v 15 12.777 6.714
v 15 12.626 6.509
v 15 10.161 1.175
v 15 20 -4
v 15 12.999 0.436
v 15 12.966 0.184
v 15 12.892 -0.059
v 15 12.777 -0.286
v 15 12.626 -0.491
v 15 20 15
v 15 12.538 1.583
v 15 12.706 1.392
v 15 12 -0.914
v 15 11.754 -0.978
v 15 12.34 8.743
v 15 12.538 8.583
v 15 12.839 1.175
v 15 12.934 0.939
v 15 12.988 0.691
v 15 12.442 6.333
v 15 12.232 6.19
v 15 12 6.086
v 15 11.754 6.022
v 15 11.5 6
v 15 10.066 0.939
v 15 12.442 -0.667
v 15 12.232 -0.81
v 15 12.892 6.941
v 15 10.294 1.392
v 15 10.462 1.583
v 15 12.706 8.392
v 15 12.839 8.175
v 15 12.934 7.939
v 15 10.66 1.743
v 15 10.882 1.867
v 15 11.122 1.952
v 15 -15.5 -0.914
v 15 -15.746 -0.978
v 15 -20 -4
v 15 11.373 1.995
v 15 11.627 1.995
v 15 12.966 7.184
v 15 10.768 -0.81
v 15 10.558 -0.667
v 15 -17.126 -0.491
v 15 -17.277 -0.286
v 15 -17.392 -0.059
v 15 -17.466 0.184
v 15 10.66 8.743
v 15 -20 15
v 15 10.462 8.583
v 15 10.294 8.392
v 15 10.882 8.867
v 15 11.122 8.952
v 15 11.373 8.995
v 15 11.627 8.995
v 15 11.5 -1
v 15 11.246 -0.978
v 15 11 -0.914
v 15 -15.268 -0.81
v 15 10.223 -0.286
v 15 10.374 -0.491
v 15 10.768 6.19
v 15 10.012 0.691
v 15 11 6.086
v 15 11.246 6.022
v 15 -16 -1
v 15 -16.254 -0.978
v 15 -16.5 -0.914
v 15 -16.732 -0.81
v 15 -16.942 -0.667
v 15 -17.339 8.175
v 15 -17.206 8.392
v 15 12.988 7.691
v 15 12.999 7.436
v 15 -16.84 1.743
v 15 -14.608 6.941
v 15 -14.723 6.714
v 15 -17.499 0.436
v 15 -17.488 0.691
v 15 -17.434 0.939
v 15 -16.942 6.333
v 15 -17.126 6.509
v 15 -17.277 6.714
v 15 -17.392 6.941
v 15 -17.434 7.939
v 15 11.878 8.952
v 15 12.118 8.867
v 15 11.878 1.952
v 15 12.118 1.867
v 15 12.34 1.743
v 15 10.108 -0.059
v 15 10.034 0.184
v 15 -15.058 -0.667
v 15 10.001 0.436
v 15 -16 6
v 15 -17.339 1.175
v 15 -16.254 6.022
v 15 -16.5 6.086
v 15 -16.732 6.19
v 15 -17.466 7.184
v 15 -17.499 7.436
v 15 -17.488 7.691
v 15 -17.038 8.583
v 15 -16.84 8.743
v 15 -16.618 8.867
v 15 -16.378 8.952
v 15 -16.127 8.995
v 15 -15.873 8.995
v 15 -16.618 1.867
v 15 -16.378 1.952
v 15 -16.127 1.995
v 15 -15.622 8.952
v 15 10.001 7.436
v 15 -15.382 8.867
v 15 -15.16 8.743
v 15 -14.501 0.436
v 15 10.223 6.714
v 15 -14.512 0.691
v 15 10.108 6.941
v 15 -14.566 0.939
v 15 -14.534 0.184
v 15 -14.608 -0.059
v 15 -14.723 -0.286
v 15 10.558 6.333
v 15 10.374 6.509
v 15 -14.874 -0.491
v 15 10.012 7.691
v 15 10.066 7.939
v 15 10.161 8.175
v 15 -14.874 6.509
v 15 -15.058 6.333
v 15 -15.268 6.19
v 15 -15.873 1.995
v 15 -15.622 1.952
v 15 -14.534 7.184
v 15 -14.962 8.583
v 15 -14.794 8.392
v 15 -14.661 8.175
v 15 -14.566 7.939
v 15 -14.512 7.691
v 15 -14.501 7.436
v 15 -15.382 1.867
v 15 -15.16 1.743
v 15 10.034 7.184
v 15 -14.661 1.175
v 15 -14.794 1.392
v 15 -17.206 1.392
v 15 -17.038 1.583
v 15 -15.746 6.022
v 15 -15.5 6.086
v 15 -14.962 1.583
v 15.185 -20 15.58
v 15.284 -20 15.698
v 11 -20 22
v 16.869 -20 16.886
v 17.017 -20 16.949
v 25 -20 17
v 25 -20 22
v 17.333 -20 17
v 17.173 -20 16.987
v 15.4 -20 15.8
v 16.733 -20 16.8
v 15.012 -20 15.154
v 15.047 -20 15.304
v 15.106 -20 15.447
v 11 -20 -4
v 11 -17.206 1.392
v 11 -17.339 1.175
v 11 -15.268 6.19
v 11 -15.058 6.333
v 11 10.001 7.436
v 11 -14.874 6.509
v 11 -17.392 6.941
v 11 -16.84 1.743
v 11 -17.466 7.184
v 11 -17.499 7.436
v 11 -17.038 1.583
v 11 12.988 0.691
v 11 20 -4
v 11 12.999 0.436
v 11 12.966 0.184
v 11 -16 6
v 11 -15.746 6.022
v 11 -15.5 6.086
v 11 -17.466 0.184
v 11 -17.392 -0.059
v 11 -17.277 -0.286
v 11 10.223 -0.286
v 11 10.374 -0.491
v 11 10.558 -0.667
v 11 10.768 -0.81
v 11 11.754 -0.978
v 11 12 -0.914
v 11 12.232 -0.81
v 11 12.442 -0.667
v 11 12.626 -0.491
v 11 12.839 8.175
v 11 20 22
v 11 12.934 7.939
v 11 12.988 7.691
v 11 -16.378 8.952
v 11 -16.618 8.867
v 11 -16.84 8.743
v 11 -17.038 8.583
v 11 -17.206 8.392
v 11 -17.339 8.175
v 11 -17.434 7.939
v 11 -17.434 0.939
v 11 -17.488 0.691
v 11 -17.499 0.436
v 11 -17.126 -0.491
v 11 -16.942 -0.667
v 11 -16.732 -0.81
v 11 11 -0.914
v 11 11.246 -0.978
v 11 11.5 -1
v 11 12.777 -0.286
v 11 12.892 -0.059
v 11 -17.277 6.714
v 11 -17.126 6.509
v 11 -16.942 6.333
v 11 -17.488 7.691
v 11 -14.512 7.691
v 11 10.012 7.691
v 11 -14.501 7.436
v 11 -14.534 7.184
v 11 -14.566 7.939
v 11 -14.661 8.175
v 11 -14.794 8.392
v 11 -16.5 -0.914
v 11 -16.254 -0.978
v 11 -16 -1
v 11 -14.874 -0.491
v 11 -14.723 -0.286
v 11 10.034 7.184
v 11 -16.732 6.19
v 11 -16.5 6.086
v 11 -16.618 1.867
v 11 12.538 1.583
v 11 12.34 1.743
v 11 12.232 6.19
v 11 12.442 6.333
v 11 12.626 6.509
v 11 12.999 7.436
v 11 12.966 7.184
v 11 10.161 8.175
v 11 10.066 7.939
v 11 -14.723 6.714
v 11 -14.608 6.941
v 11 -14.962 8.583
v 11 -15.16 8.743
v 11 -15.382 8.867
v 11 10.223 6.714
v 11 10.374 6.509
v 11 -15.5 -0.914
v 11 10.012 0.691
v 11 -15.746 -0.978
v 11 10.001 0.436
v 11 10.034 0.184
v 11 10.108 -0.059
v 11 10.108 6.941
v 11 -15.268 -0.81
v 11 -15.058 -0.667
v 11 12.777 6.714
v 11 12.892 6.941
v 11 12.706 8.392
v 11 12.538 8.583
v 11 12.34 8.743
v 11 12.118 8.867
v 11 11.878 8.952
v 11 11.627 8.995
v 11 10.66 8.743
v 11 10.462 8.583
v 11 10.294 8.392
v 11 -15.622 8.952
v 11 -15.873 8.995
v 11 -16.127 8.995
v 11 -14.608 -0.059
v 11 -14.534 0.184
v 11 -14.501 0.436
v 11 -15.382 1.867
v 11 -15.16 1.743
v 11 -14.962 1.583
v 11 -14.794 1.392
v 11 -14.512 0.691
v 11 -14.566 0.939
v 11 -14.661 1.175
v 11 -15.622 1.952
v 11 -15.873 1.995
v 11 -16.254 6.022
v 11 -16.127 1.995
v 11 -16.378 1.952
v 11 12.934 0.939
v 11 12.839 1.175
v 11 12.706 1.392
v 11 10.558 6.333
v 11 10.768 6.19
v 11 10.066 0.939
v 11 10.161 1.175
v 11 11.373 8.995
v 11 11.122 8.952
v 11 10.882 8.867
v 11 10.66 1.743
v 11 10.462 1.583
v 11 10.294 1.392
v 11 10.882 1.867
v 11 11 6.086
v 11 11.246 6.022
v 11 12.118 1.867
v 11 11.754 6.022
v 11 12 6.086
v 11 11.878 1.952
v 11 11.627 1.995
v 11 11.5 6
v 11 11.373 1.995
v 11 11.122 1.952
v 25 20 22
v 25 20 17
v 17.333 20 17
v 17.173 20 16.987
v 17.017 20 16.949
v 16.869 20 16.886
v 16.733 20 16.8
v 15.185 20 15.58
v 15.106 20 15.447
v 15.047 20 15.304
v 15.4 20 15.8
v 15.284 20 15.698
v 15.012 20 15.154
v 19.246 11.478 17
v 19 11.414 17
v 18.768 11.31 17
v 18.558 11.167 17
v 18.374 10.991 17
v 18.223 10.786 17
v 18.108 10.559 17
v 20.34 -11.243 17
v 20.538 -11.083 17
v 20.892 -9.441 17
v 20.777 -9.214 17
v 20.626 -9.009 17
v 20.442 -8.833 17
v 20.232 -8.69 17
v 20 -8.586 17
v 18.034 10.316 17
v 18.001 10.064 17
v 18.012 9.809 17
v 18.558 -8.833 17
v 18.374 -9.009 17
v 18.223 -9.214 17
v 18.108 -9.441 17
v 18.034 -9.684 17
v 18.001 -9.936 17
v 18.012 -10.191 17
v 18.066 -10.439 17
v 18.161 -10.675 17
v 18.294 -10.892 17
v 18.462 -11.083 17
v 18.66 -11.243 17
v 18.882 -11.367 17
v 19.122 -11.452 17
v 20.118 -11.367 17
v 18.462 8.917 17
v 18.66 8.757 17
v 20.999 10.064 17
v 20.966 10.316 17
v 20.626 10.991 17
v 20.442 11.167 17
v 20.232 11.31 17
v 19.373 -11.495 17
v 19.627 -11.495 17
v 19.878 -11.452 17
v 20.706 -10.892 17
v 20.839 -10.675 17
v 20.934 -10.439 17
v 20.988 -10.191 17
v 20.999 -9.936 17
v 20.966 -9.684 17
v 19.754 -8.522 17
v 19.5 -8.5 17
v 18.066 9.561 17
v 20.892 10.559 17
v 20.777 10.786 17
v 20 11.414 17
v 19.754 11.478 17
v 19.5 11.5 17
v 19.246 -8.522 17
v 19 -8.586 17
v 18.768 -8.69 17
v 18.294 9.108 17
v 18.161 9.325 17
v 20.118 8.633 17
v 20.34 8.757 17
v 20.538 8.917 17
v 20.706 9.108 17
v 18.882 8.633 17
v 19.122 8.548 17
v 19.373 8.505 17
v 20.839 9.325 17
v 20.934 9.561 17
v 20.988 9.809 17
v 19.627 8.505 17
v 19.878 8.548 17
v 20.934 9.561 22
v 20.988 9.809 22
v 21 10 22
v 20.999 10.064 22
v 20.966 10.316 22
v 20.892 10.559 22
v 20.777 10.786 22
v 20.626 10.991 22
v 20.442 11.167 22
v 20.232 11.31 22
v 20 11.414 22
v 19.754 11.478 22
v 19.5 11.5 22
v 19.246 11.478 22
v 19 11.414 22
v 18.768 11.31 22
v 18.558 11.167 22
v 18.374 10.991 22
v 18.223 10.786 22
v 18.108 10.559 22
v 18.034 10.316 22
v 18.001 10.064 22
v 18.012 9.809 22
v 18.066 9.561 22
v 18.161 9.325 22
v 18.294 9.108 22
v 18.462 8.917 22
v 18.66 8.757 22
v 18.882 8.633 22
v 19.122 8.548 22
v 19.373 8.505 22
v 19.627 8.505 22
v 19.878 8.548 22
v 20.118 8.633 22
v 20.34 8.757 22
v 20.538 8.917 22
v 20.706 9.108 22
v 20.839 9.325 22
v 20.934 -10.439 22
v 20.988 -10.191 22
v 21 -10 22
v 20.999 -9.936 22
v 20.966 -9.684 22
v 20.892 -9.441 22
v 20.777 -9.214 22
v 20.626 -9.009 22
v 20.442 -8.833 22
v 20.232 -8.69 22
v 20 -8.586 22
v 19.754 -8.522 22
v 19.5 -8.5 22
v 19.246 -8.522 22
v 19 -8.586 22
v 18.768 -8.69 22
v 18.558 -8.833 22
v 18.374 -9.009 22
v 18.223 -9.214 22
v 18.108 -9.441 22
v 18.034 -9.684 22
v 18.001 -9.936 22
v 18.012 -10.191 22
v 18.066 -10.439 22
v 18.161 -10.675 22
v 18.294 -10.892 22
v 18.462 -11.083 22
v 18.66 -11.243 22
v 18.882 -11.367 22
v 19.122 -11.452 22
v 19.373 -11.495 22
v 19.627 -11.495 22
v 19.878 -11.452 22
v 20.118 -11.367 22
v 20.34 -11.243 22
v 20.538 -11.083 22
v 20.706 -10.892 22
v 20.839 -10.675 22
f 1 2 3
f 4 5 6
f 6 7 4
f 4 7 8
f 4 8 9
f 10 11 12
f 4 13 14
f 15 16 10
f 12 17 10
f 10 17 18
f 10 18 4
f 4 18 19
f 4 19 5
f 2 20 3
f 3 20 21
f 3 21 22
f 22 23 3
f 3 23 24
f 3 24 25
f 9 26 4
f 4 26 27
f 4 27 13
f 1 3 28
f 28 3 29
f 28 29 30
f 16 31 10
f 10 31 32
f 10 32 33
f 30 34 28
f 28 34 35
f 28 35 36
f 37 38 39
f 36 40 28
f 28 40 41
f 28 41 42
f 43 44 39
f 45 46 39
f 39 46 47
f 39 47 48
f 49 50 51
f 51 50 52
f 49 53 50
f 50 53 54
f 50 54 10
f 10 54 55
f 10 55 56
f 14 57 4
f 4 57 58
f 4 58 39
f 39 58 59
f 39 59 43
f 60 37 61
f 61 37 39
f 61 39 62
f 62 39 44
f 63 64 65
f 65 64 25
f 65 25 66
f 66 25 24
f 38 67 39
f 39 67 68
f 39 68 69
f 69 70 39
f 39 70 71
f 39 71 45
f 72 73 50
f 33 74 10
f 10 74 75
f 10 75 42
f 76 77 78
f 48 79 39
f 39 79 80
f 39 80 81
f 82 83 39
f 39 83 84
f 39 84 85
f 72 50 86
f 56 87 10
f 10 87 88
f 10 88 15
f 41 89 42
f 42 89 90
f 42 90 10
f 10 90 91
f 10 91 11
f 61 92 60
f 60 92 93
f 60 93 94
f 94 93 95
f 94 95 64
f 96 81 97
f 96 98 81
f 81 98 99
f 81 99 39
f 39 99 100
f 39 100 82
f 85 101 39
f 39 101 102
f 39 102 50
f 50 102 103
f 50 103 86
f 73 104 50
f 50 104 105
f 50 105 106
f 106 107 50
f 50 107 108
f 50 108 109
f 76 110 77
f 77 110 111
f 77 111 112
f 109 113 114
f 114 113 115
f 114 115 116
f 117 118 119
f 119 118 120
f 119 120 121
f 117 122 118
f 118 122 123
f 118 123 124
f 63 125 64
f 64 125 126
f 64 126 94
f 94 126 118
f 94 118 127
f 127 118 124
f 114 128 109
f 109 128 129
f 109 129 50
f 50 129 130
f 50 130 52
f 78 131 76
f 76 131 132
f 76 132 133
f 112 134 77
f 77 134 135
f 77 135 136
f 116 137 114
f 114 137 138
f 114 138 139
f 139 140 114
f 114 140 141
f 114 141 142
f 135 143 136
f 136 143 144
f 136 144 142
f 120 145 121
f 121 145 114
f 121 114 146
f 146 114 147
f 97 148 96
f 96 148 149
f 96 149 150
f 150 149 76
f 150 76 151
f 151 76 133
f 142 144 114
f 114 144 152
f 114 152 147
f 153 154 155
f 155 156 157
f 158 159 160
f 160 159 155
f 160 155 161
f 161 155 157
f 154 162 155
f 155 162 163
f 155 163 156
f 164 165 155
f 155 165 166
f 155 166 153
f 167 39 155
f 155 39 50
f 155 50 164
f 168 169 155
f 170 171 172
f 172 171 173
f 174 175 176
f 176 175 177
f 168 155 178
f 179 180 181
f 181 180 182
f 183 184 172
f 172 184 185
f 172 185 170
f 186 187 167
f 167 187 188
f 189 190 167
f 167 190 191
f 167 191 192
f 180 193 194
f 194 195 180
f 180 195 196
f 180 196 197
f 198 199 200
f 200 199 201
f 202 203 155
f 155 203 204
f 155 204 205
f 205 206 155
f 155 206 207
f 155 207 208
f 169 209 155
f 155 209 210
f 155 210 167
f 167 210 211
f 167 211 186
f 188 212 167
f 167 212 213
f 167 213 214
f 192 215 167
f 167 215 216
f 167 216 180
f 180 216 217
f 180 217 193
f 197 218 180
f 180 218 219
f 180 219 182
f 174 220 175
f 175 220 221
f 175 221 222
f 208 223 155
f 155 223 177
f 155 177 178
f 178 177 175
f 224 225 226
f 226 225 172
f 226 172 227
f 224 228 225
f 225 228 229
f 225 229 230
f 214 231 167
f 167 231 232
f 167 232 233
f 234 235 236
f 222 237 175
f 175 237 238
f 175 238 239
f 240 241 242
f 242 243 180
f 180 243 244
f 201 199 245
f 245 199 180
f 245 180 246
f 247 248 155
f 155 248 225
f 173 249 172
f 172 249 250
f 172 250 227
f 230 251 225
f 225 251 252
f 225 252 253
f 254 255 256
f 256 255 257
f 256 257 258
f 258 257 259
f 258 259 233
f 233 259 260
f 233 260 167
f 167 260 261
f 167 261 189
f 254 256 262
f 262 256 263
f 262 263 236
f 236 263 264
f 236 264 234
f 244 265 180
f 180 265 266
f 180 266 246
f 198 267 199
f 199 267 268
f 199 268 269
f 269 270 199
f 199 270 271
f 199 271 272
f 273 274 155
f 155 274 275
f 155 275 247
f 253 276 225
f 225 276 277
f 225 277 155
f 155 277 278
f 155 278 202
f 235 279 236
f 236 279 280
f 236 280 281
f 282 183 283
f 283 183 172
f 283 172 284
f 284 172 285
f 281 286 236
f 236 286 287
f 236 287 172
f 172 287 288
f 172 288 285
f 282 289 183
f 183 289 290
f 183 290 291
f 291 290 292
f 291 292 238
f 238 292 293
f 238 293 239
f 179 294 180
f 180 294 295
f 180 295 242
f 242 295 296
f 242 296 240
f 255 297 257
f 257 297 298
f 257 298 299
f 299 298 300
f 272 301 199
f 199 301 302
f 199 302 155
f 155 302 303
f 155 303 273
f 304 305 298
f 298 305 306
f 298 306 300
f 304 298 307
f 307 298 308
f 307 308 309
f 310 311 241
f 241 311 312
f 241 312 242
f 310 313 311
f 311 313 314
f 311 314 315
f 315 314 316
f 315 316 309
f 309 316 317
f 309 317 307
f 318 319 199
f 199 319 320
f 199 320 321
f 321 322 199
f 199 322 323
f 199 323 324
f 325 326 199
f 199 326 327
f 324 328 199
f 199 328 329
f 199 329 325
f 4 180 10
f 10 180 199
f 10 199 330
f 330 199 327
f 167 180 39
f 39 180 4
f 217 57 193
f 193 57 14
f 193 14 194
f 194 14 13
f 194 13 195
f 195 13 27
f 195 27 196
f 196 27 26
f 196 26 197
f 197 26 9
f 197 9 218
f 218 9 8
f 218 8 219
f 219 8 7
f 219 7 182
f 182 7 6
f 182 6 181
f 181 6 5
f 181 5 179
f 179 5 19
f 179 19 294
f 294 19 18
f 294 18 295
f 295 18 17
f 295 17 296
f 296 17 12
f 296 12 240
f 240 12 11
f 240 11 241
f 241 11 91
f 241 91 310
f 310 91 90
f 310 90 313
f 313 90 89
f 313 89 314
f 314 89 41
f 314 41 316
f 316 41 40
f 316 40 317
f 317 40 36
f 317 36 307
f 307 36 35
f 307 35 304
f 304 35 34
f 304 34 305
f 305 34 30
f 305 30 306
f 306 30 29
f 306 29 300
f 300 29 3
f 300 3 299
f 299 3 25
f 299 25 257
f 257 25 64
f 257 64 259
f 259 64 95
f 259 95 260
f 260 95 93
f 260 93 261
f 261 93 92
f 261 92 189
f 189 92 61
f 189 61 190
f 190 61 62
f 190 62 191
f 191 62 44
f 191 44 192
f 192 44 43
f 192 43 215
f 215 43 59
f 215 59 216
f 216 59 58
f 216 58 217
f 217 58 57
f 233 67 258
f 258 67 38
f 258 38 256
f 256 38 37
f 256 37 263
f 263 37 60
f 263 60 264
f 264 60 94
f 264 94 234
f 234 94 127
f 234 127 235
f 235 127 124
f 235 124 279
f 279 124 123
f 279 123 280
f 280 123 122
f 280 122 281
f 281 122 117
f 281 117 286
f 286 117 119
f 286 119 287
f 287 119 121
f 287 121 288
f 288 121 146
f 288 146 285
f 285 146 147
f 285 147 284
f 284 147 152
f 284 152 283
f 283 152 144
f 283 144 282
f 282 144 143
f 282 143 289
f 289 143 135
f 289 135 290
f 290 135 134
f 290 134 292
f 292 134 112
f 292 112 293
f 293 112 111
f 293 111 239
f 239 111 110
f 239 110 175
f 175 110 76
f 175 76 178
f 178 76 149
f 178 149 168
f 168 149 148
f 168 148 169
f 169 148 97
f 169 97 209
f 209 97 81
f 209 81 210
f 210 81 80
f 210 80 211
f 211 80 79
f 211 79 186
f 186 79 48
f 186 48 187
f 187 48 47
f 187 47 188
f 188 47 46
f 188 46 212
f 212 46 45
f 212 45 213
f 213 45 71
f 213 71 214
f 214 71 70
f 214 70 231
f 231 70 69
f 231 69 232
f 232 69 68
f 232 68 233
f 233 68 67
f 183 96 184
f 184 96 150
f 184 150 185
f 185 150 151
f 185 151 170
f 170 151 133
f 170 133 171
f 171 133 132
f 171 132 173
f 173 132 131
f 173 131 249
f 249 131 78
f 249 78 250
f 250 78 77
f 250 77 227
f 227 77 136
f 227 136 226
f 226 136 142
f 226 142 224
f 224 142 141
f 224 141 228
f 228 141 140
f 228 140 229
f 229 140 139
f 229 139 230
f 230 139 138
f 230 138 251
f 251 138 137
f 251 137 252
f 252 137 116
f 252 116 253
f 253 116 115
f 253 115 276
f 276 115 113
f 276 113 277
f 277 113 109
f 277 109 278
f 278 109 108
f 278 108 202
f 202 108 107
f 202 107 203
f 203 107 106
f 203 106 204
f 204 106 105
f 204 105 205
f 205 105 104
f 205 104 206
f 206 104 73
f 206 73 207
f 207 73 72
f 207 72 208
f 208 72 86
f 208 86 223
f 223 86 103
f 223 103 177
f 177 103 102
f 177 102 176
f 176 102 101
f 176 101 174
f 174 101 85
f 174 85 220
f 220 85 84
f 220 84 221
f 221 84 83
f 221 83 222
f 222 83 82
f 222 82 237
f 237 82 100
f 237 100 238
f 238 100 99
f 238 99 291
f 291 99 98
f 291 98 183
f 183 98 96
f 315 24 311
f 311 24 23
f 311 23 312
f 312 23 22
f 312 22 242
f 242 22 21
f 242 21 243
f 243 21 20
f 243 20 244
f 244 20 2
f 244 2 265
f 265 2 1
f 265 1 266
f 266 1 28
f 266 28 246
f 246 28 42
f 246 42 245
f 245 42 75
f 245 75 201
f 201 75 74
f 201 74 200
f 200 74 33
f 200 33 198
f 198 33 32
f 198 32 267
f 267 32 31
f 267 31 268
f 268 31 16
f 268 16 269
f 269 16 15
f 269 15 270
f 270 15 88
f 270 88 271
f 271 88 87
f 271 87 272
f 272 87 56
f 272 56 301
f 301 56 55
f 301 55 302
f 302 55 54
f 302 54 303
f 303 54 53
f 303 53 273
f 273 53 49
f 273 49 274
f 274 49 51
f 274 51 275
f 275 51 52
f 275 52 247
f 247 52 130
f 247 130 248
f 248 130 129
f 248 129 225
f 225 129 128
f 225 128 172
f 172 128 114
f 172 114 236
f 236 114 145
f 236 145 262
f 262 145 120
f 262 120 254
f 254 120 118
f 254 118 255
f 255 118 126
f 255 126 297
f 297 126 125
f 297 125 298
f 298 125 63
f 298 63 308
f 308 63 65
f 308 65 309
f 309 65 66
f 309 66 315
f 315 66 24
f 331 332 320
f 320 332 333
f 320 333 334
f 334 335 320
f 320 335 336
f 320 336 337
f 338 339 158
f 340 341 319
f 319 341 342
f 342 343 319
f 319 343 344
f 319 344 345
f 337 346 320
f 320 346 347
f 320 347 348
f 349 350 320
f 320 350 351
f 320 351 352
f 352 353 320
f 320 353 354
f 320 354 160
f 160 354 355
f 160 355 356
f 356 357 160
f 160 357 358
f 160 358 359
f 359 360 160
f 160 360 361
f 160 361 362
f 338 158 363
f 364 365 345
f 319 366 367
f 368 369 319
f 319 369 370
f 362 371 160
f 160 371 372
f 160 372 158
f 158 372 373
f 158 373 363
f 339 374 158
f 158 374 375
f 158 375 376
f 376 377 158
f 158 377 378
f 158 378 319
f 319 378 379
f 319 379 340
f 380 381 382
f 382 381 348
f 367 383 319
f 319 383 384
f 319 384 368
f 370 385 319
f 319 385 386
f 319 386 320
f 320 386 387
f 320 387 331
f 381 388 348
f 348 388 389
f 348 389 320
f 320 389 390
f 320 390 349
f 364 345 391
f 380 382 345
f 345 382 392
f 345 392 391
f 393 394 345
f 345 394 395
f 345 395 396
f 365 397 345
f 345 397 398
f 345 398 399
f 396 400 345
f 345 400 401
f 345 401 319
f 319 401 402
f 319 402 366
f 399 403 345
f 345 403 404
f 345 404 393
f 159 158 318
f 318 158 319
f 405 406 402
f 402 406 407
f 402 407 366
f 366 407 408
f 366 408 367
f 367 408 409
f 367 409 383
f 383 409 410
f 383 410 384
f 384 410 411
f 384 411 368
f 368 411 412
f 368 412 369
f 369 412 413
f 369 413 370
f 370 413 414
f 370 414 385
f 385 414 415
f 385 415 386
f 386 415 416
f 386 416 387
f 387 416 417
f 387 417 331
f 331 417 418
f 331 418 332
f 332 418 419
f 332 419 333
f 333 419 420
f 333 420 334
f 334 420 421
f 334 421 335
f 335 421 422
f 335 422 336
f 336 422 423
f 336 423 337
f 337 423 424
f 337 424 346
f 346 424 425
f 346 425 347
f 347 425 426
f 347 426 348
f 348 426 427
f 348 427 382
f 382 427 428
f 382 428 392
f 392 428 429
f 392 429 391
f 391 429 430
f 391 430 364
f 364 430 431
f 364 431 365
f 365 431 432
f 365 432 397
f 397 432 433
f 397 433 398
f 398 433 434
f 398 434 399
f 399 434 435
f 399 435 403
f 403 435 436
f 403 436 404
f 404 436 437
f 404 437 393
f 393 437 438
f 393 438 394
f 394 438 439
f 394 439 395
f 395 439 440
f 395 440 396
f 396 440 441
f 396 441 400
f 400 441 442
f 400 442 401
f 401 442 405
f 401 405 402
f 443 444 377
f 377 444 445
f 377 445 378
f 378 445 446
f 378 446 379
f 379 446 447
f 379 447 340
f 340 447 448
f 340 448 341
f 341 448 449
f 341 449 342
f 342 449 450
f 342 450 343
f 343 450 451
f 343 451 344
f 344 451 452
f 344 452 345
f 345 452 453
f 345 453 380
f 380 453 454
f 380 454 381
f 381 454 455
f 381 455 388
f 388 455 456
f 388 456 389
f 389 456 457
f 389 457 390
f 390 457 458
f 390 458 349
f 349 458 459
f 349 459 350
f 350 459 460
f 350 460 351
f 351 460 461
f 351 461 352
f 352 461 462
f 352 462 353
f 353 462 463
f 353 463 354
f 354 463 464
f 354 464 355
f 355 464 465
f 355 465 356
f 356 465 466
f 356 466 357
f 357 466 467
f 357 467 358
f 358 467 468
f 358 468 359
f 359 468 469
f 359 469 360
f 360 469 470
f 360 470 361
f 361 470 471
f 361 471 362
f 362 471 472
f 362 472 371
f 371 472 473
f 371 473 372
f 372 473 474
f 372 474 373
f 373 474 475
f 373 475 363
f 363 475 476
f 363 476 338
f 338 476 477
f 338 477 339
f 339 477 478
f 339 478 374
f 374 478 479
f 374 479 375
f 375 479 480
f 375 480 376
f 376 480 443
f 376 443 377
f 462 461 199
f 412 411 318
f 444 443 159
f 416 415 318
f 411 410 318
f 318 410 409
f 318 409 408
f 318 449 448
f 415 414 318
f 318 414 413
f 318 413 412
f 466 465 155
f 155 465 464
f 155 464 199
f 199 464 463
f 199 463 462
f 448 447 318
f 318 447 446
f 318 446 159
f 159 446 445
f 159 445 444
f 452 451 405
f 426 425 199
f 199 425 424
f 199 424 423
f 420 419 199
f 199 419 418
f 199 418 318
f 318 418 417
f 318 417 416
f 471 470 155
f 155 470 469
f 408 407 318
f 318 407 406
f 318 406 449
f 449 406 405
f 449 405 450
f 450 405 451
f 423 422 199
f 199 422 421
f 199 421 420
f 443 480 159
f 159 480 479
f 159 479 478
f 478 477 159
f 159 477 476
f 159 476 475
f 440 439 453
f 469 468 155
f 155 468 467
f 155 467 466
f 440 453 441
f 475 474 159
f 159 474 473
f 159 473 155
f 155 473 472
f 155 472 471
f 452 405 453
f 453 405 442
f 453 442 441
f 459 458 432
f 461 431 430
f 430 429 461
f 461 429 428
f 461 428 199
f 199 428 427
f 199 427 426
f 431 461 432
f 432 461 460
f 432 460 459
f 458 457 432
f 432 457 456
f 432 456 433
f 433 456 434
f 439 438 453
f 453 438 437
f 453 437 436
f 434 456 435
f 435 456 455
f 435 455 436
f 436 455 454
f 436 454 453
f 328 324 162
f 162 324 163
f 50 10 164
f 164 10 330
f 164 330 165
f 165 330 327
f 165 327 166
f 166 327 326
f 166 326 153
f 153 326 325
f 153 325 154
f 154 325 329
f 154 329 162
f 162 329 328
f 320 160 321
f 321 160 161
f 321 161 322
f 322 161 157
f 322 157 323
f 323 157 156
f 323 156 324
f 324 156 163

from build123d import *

# Parameters (mm, degrees)
SKETCH1_W                = 4
SKETCH1_H                = 40
BOSS_EXTRUDE2_DEPTH      = 20
BOSS_EXTRUDE2_DEPTH_BACK = 4
SKETCH3_R                = 1.5
CUT_EXTRUDE1_DEPTH       = 29.565713714
SKETCH4_W                = 3
SKETCH4_H                = 40
BOSS_EXTRUDE3_DEPTH      = 10
SKETCH5_R                = 1.5
CUT_EXTRUDE2_DEPTH       = 39.288379438
SKETCH8_W                = 14
SKETCH8_H                = 40
SKETCH8_R                = 1.5
BOSS_EXTRUDE4_DEPTH      = 2
BOSS_EXTRUDE5_DEPTH      = 40
FILLET3_R                = 1


with BuildPart() as part:
    # Sketch1 → Boss-Extrude2 (new, two sides)
    with BuildSketch(Plane.XY) as boss_extrude2_sk:
        with Locations((13, 0)):
            Rectangle(SKETCH1_W, SKETCH1_H)
    extrude(amount=BOSS_EXTRUDE2_DEPTH)
    extrude(boss_extrude2_sk.sketch, amount=-BOSS_EXTRUDE2_DEPTH_BACK)

    # Sketch3 → Cut-Extrude1 (cut, through all)
    with BuildSketch(Plane(origin=(15, 0, 0), x_dir=(0, 0, -1), z_dir=(1, 0, 0))):
        with Locations((-7.5, -16)):
            Circle(SKETCH3_R)
        with Locations((-7.5, 11.5)):
            Circle(SKETCH3_R)
        with Locations((-0.5, 11.5)):
            Circle(SKETCH3_R)
        with Locations((-0.5, -16)):
            Circle(SKETCH3_R)
    extrude(amount=-CUT_EXTRUDE1_DEPTH, mode=Mode.SUBTRACT)

    # Sketch4 → Boss-Extrude3 (add)
    with BuildSketch(Plane(origin=(15, 0, 0), x_dir=(0, 0, -1), z_dir=(1, 0, 0))):
        with Locations((-18.5, 0)):
            Rectangle(SKETCH4_W, SKETCH4_H)
    extrude(amount=BOSS_EXTRUDE3_DEPTH)

    # Sketch5 → Cut-Extrude2 (cut, through all)
    with BuildSketch(Plane(origin=(0, 0, 17), x_dir=(-1, 0, 0), z_dir=(0, 0, -1))):
        with Locations(Location((-19.5, -10, 0), (0, 0, 90))):
            Circle(SKETCH5_R)
        with Locations(Location((-19.5, 10, 0), (0, 0, 90))):
            Circle(SKETCH5_R)
    extrude(amount=-CUT_EXTRUDE2_DEPTH, mode=Mode.SUBTRACT)

    # Sketch8 → Boss-Extrude4 (add)
    with BuildSketch(Plane.XY.offset(20)):
        with Locations((18, 0)):
            Rectangle(SKETCH8_W, SKETCH8_H)
        with Locations(Location((19.5, 10, 0), (0, 0, 90))):
            Circle(SKETCH8_R, mode=Mode.SUBTRACT)
        with Locations(Location((19.5, -10, 0), (0, 0, 90))):
            Circle(SKETCH8_R, mode=Mode.SUBTRACT)
    extrude(amount=BOSS_EXTRUDE4_DEPTH)

    # Sketch9 → Boss-Extrude5 (add)
    with BuildSketch(Plane.XZ.offset(20)):
        Polygon((17, 17), (15, 17), (15, 15.5), align=None)
    extrude(amount=-BOSS_EXTRUDE5_DEPTH)

    # Fillet3
    fillet3_edges = [part.edges().sort_by_distance(p)[0] for p in [
        (15, 0, 15.5),
        (17, 0, 17),
    ]]
    fillet(fillet3_edges, radius=FILLET3_R)


solid = part.part
